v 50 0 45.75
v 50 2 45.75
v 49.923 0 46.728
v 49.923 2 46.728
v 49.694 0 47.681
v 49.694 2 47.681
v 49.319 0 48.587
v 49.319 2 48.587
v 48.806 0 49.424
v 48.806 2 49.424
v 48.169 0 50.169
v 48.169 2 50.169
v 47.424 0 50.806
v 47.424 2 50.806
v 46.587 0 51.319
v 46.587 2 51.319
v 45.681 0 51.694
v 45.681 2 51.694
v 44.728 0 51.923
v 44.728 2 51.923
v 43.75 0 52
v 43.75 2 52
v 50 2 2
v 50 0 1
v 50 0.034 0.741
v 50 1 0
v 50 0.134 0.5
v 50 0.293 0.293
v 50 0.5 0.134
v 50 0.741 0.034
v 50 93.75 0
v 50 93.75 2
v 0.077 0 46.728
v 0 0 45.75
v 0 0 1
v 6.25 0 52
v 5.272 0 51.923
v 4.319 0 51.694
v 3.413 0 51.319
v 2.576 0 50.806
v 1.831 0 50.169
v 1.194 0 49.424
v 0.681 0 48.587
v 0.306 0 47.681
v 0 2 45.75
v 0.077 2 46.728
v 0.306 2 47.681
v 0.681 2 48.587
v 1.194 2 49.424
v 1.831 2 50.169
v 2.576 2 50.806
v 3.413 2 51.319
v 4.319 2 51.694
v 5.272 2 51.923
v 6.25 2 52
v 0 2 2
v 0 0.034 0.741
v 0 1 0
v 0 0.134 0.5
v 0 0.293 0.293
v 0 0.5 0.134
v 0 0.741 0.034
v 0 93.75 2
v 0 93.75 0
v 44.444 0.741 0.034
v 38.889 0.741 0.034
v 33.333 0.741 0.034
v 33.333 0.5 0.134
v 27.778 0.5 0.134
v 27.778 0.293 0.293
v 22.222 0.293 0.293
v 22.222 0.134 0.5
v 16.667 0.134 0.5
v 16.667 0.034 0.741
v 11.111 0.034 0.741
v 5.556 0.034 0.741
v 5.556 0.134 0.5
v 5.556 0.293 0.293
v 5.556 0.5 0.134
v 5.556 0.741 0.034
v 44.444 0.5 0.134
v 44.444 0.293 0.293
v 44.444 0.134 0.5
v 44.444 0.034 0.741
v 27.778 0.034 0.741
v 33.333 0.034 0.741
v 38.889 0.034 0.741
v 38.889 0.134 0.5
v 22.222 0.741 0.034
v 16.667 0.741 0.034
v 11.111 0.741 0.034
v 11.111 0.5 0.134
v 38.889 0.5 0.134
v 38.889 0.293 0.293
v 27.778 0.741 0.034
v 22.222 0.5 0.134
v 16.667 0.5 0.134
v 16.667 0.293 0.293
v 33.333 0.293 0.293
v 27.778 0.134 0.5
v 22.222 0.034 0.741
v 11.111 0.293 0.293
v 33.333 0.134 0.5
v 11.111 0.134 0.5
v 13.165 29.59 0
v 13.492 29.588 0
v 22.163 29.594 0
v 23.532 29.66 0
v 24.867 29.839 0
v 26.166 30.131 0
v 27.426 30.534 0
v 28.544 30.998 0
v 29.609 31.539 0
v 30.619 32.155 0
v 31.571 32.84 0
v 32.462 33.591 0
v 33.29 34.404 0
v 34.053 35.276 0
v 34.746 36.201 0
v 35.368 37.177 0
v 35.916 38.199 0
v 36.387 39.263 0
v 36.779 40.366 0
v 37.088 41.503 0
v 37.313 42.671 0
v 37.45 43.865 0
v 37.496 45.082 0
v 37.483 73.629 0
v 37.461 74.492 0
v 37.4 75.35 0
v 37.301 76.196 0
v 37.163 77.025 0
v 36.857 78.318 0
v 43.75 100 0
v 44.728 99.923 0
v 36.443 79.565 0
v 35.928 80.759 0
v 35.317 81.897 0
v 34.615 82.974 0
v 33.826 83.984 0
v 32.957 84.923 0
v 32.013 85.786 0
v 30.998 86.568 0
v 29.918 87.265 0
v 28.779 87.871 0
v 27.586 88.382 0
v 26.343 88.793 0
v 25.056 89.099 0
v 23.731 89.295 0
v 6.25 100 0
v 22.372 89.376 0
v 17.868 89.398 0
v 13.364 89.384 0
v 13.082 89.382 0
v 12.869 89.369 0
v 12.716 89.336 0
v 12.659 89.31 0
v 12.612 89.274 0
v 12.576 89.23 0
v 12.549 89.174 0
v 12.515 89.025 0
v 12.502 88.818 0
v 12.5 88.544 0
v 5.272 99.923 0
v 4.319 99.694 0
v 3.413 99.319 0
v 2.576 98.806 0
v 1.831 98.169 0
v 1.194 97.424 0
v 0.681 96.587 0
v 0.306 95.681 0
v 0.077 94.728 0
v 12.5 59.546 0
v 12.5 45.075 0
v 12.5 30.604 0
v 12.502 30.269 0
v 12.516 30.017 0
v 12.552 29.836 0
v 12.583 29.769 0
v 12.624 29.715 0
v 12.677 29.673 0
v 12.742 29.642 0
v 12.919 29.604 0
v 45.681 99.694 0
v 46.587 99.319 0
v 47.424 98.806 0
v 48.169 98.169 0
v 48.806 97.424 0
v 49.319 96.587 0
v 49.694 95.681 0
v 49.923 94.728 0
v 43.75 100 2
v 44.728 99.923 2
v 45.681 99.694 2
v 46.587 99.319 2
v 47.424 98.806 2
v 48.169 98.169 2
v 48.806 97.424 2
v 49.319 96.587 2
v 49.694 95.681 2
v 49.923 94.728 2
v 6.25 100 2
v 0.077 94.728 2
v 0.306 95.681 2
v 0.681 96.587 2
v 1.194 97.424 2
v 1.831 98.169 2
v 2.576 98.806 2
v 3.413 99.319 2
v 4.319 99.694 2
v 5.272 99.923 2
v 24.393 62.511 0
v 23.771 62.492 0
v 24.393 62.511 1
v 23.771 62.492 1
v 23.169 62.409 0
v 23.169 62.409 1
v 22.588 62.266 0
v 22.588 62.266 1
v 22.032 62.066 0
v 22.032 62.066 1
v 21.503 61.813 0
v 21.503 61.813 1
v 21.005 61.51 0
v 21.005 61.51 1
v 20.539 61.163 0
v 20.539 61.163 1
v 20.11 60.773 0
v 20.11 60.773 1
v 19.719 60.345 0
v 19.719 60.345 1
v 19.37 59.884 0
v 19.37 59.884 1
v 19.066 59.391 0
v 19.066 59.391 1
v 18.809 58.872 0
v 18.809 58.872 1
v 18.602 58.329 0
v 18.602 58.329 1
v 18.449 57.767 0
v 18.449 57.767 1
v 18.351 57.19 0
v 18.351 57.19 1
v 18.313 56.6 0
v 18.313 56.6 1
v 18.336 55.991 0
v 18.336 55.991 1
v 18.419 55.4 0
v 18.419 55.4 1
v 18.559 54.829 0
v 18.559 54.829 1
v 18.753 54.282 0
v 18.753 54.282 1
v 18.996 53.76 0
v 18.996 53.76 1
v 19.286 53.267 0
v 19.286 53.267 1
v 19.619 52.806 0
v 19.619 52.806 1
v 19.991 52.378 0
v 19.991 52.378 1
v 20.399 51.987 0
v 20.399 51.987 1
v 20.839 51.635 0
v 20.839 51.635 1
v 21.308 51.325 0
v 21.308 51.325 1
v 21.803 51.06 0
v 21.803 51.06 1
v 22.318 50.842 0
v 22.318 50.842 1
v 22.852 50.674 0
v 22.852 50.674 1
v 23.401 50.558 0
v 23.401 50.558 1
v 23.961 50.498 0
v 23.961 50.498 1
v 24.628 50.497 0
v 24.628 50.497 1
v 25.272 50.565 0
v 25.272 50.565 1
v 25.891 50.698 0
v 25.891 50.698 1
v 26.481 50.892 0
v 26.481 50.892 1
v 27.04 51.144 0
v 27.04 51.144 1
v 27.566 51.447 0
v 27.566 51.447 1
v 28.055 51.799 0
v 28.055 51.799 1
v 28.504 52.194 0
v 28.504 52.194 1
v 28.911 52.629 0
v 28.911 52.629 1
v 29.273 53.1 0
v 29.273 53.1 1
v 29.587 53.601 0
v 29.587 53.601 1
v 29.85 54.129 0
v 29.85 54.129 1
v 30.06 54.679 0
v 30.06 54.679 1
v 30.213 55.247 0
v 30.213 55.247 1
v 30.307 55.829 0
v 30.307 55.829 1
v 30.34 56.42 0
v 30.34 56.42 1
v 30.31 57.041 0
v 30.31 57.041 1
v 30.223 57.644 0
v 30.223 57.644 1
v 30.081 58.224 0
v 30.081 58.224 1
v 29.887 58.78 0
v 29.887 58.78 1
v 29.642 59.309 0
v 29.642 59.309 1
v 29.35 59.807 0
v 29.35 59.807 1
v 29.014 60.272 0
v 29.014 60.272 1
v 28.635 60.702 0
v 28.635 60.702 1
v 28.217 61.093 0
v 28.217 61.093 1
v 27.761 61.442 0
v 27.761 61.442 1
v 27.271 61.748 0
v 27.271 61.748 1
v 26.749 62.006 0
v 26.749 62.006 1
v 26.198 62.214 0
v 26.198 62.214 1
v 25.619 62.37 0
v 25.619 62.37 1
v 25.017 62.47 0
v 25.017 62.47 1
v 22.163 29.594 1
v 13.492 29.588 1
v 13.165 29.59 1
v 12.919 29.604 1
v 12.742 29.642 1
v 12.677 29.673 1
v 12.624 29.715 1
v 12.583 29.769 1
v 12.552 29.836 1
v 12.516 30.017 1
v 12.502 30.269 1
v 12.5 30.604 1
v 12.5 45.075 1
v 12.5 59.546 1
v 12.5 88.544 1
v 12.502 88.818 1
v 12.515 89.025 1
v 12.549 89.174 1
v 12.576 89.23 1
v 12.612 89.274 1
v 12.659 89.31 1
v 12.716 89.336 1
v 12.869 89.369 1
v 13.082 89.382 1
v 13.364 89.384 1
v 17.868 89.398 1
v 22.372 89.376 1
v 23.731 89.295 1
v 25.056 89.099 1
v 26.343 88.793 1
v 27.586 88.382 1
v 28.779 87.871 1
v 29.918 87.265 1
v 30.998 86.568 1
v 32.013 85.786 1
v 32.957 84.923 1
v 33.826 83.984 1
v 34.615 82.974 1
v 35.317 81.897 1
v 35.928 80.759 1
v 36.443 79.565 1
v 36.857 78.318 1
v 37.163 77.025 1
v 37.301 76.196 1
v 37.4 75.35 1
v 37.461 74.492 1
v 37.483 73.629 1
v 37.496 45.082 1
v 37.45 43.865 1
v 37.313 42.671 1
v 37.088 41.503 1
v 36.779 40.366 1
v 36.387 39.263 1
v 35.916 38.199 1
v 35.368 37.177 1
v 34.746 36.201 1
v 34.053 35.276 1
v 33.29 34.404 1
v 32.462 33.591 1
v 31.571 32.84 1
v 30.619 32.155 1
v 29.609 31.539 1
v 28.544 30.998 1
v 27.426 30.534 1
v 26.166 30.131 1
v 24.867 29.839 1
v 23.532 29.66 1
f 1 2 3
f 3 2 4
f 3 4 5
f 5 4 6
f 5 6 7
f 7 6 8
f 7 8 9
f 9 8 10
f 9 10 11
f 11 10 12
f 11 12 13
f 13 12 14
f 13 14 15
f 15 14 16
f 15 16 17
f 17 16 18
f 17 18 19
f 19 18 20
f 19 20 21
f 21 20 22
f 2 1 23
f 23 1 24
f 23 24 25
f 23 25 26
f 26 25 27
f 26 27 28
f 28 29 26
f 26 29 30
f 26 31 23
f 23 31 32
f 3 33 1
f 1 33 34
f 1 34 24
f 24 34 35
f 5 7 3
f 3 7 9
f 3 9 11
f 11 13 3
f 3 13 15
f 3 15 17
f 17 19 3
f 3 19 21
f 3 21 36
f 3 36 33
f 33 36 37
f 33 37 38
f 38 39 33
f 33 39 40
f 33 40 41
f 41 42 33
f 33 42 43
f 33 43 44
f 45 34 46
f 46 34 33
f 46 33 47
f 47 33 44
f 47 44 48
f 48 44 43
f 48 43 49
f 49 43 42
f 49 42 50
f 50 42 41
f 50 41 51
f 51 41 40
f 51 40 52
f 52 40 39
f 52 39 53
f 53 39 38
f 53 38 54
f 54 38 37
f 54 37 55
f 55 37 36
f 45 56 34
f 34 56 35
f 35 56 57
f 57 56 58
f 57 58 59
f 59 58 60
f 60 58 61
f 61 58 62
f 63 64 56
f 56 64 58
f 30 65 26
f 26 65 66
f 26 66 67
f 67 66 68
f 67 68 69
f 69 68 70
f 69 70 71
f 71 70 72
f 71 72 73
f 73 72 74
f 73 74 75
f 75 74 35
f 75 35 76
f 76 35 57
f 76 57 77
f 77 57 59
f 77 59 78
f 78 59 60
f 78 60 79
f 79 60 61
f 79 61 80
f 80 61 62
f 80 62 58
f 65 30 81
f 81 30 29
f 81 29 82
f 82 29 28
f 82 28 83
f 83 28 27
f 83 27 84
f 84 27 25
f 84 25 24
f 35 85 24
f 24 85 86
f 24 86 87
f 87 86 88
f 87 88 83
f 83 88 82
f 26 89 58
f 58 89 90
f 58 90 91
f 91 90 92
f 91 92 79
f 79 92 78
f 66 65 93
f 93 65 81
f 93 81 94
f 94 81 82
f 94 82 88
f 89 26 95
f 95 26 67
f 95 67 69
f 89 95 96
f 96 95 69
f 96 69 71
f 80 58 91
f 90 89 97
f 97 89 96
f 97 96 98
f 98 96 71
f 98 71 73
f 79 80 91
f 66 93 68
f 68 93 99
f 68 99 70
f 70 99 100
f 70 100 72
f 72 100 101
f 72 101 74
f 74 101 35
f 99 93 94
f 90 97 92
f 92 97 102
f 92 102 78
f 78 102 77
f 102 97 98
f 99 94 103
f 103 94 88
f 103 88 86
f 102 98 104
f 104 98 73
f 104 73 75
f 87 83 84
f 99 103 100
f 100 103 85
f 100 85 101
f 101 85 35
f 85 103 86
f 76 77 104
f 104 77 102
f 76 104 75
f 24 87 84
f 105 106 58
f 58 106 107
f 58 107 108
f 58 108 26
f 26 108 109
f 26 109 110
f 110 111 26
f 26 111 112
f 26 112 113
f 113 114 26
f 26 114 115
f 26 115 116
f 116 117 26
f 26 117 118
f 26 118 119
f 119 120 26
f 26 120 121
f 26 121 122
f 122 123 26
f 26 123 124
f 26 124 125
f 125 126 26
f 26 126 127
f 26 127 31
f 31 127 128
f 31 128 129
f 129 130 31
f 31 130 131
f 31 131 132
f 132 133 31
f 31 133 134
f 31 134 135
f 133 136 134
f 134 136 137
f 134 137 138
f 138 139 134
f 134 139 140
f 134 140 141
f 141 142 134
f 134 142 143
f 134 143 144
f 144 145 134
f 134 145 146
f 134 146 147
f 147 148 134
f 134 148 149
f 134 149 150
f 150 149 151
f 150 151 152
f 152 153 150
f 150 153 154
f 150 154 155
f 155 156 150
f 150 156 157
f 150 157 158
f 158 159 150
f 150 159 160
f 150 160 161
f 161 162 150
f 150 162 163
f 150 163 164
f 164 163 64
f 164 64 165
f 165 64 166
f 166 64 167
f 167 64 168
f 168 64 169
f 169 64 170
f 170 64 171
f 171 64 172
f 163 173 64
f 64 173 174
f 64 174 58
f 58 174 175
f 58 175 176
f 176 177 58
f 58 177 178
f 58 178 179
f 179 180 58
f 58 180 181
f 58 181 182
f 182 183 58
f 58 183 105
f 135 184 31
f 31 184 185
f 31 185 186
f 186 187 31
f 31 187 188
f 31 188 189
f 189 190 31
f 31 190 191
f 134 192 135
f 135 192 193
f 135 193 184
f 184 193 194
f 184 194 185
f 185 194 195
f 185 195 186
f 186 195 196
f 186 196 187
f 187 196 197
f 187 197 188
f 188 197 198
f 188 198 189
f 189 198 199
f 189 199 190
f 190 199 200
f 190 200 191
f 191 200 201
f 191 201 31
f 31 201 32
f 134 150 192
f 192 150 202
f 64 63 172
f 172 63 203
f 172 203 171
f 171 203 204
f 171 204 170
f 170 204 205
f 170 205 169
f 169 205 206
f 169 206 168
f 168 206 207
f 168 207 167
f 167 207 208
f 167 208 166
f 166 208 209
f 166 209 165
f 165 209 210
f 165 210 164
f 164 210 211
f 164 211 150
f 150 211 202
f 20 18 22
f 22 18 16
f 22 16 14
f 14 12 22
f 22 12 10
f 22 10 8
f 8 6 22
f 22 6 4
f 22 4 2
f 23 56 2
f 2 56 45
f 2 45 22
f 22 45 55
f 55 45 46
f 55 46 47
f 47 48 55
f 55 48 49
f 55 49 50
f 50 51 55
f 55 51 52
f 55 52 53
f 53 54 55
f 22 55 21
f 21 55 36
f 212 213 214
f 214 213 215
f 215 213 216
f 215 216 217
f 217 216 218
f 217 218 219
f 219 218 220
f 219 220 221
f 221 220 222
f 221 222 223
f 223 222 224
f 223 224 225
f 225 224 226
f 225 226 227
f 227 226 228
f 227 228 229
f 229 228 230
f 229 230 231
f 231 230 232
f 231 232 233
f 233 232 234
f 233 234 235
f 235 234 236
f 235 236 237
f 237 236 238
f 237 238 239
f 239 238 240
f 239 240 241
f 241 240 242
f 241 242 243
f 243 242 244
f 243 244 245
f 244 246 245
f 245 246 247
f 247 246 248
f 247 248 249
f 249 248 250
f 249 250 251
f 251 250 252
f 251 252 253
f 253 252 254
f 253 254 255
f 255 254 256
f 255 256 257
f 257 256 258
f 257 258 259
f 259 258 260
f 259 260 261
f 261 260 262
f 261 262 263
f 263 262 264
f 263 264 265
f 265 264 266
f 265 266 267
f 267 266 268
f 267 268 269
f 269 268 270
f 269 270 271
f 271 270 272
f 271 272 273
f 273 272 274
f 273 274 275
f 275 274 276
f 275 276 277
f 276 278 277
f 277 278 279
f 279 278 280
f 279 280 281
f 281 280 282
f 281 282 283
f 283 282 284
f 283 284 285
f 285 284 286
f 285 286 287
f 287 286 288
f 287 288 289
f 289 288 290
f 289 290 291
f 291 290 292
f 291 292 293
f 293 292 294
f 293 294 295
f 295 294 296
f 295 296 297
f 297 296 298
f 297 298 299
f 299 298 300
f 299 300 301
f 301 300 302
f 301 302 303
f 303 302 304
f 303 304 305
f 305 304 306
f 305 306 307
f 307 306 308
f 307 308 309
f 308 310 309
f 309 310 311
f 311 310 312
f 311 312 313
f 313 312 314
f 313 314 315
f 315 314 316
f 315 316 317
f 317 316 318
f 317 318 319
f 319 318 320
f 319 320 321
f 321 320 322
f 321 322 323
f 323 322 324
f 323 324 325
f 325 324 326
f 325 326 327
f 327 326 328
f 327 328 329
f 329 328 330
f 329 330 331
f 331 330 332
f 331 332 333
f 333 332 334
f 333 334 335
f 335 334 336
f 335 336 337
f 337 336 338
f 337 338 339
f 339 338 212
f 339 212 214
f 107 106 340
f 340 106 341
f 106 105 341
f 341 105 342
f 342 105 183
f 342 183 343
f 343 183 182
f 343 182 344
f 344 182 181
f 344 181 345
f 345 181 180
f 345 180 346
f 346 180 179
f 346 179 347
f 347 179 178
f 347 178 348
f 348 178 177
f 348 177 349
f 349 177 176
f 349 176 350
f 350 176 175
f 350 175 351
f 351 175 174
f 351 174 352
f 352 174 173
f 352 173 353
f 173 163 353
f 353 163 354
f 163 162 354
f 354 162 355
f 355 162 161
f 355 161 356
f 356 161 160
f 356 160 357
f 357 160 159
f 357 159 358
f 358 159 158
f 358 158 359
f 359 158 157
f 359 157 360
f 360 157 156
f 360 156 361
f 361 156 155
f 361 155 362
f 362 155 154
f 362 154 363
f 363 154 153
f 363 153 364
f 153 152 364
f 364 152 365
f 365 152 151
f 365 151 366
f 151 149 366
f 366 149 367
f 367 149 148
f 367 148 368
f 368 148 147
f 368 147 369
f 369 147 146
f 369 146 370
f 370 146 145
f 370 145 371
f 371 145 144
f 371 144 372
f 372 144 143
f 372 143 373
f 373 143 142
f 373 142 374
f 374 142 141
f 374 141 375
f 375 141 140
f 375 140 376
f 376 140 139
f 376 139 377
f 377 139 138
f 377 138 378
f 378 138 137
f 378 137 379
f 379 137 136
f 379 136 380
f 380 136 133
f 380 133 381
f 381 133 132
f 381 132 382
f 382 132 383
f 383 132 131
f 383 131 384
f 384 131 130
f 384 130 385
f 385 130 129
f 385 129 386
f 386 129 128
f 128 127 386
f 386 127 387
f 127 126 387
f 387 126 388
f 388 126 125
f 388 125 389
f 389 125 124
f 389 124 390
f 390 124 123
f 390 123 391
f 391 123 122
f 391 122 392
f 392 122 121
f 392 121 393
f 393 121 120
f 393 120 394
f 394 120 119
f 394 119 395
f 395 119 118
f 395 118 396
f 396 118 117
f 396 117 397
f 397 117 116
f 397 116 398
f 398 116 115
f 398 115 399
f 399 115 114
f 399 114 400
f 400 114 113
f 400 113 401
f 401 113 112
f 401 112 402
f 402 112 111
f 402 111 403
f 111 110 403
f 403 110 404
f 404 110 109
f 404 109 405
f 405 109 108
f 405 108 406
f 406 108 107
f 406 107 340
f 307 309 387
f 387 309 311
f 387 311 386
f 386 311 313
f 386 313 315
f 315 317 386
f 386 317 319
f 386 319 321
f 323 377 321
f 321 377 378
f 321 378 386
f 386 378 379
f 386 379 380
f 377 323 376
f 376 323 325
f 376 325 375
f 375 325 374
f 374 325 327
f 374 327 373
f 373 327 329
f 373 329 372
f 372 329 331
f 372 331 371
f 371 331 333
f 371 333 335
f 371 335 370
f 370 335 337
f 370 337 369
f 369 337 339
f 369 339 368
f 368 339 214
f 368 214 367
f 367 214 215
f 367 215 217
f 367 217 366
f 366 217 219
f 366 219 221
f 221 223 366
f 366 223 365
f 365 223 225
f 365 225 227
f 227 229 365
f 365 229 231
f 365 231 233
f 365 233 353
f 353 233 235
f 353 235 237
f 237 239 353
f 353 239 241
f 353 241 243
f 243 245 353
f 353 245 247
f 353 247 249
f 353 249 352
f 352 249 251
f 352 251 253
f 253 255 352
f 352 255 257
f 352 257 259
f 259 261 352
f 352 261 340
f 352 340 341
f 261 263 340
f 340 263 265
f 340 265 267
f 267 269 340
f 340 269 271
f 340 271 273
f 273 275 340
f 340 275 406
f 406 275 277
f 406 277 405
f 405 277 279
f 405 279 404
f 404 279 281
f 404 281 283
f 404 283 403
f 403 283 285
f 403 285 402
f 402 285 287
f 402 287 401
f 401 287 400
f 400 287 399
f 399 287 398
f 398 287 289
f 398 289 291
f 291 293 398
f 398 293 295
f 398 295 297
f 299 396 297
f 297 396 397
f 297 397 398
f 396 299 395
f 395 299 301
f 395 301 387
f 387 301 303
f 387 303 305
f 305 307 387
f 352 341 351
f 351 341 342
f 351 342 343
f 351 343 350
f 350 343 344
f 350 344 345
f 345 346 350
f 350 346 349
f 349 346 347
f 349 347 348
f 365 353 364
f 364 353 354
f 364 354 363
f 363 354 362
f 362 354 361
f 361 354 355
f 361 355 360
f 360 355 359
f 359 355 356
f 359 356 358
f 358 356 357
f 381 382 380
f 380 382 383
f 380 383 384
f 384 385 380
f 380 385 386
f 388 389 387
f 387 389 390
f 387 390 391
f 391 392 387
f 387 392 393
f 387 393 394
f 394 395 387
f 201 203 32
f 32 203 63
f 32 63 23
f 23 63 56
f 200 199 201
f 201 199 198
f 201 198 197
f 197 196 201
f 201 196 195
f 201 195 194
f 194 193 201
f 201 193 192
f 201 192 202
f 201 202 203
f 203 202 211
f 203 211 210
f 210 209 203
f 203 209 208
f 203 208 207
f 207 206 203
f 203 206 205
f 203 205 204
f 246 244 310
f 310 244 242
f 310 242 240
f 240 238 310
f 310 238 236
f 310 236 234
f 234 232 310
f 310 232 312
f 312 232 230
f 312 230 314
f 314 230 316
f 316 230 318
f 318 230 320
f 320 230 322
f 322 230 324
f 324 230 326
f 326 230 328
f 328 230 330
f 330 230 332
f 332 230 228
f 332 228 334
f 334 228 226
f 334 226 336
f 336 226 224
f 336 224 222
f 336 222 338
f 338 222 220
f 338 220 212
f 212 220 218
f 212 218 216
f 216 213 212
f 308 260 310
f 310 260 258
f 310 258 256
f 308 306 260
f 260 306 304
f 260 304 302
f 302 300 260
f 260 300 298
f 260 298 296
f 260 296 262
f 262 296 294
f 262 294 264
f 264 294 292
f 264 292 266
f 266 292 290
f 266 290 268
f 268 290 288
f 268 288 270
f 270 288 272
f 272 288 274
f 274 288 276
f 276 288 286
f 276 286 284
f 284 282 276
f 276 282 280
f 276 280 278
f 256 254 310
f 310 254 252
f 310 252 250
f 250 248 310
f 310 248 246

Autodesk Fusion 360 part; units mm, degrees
sketch "Sketch1" plane through (0, 0, 0) normal (0, 0, 1) x (1, 0, 0)
  line L0 (0, 0) -> (50, 0)
  line L1 (50, 0) -> (50, 100)
  line L2 (50, 100) -> (0, 100)
  line L3 (0, 100) -> (0, 0)
  line L4 (0, 0) -> (50, 0)
  line L5 (50, 0) -> (50, 2)
  line L6 (50, 2) -> (0, 2)
  line L7 (0, 2) -> (0, 0)
  spline S0 degree 3 poles (24.3926, 62.5111) (21.034, 62.5879) (18.3569, 59.7697) (18.3127, 56.6004) knots 0 0 0 0 1 1 1 1
  spline S1 degree 3 poles (18.3127, 56.6004) (18.2669, 53.309) (20.9522, 50.6661) (23.9609, 50.4981) knots 1 1 1 1 2 2 2 2
  spline S2 degree 3 poles (23.9609, 50.4981) (27.5727, 50.2965) (30.3381, 53.249) (30.3396, 56.4202) knots 2 2 2 2 3 3 3 3
  spline S3 degree 3 poles (30.3396, 56.4202) (30.3412, 59.7786) (27.7751, 62.4497) (24.3926, 62.5111) knots 3 3 3 3 4 4 4 4
  spline S4 degree 3 poles (12.5, 59.5459) (12.5, 69.2118) (12.5, 78.8778) (12.5002, 88.5437) knots 0 0 0 0 1 1 1 1
  spline S5 degree 3 poles (12.5002, 88.5437) (12.5002, 89.3725) (12.5115, 89.3837) (13.3635, 89.3838) knots 1 1 1 1 2 2 2 2
  spline S6 degree 3 poles (13.3635, 89.3838) (16.3666, 89.3841) (19.3701, 89.4245) (22.3724, 89.3759) knots 2 2 2 2 3 3 3 3
  spline S7 degree 3 poles (22.3724, 89.3759) (29.6983, 89.2569) (35.8235, 84.0387) (37.163, 77.0252) knots 3 3 3 3 4 4 4 4
  ellipse E0 centre (32.1817, 73.8321) end of major axis (31.9976, 83.8525) minor radius 5.2992 (37.4831, 73.6294) -> (37.163, 77.0252) ccw
  spline S8 degree 3 poles (37.4831, 73.6294) (37.508, 64.1137) (37.4991, 54.5979) (37.4962, 45.0821) knots 5 5 5 5 6 6 6 6
  spline S9 degree 3 poles (37.4962, 45.0821) (37.4941, 38.5387) (33.5212, 32.7922) (27.4264, 30.5344) knots 6 6 6 6 7 7 7 7
  ellipse E1 centre (3.8308, 95.2156) end of major axis (-19.676, 159.9294) minor radius 31.8773 (22.1635, 29.5935) -> (27.4264, 30.5344) ccw
  spline S10 degree 3 poles (22.1635, 29.5935) (19.2732, 29.5733) (16.3827, 29.588) (13.4922, 29.5882) knots 8 8 8 8 9 9 9 9
  spline S11 degree 3 poles (13.4922, 29.5882) (12.5, 29.5882) (12.5, 29.5885) (12.5, 30.6044) (12.5, 40.2515) (12.5, 49.8987) (12.5, 59.5459) knots 9 9 9 9 10 10 10 11 11 11 11
  dimension "d1" = 50
  dimension "d2" = 100
  dimension "d3" = 2
extrude "Extrude1" add sketch "Sketch1" along normal blind 2 contours L1 L2 L3 L6 | S0 S1 S2 S3 | S4 S5 S6 S7 E0 S8 S9 E1 S10 S11
extrude "Extrude2" cut sketch "Sketch1" along normal blind 1 contours S4 S5 S6 S7 E0 S8 S9 E1 S10 S11
extrude "Extrude3" add sketch "Sketch1" along normal blind 52 contours L0 L1 L3 L4 L5 L6 L7
fillet "Fillet1" radius 6.25 2 edges at (0, 100, 1) (50, 100, 1)
fillet "Fillet2" radius 1 1 edges at (25, 0, 0)
fillet "Fillet3" radius 6.25 2 edges at (0, 1, 52) (50, 1, 52)
